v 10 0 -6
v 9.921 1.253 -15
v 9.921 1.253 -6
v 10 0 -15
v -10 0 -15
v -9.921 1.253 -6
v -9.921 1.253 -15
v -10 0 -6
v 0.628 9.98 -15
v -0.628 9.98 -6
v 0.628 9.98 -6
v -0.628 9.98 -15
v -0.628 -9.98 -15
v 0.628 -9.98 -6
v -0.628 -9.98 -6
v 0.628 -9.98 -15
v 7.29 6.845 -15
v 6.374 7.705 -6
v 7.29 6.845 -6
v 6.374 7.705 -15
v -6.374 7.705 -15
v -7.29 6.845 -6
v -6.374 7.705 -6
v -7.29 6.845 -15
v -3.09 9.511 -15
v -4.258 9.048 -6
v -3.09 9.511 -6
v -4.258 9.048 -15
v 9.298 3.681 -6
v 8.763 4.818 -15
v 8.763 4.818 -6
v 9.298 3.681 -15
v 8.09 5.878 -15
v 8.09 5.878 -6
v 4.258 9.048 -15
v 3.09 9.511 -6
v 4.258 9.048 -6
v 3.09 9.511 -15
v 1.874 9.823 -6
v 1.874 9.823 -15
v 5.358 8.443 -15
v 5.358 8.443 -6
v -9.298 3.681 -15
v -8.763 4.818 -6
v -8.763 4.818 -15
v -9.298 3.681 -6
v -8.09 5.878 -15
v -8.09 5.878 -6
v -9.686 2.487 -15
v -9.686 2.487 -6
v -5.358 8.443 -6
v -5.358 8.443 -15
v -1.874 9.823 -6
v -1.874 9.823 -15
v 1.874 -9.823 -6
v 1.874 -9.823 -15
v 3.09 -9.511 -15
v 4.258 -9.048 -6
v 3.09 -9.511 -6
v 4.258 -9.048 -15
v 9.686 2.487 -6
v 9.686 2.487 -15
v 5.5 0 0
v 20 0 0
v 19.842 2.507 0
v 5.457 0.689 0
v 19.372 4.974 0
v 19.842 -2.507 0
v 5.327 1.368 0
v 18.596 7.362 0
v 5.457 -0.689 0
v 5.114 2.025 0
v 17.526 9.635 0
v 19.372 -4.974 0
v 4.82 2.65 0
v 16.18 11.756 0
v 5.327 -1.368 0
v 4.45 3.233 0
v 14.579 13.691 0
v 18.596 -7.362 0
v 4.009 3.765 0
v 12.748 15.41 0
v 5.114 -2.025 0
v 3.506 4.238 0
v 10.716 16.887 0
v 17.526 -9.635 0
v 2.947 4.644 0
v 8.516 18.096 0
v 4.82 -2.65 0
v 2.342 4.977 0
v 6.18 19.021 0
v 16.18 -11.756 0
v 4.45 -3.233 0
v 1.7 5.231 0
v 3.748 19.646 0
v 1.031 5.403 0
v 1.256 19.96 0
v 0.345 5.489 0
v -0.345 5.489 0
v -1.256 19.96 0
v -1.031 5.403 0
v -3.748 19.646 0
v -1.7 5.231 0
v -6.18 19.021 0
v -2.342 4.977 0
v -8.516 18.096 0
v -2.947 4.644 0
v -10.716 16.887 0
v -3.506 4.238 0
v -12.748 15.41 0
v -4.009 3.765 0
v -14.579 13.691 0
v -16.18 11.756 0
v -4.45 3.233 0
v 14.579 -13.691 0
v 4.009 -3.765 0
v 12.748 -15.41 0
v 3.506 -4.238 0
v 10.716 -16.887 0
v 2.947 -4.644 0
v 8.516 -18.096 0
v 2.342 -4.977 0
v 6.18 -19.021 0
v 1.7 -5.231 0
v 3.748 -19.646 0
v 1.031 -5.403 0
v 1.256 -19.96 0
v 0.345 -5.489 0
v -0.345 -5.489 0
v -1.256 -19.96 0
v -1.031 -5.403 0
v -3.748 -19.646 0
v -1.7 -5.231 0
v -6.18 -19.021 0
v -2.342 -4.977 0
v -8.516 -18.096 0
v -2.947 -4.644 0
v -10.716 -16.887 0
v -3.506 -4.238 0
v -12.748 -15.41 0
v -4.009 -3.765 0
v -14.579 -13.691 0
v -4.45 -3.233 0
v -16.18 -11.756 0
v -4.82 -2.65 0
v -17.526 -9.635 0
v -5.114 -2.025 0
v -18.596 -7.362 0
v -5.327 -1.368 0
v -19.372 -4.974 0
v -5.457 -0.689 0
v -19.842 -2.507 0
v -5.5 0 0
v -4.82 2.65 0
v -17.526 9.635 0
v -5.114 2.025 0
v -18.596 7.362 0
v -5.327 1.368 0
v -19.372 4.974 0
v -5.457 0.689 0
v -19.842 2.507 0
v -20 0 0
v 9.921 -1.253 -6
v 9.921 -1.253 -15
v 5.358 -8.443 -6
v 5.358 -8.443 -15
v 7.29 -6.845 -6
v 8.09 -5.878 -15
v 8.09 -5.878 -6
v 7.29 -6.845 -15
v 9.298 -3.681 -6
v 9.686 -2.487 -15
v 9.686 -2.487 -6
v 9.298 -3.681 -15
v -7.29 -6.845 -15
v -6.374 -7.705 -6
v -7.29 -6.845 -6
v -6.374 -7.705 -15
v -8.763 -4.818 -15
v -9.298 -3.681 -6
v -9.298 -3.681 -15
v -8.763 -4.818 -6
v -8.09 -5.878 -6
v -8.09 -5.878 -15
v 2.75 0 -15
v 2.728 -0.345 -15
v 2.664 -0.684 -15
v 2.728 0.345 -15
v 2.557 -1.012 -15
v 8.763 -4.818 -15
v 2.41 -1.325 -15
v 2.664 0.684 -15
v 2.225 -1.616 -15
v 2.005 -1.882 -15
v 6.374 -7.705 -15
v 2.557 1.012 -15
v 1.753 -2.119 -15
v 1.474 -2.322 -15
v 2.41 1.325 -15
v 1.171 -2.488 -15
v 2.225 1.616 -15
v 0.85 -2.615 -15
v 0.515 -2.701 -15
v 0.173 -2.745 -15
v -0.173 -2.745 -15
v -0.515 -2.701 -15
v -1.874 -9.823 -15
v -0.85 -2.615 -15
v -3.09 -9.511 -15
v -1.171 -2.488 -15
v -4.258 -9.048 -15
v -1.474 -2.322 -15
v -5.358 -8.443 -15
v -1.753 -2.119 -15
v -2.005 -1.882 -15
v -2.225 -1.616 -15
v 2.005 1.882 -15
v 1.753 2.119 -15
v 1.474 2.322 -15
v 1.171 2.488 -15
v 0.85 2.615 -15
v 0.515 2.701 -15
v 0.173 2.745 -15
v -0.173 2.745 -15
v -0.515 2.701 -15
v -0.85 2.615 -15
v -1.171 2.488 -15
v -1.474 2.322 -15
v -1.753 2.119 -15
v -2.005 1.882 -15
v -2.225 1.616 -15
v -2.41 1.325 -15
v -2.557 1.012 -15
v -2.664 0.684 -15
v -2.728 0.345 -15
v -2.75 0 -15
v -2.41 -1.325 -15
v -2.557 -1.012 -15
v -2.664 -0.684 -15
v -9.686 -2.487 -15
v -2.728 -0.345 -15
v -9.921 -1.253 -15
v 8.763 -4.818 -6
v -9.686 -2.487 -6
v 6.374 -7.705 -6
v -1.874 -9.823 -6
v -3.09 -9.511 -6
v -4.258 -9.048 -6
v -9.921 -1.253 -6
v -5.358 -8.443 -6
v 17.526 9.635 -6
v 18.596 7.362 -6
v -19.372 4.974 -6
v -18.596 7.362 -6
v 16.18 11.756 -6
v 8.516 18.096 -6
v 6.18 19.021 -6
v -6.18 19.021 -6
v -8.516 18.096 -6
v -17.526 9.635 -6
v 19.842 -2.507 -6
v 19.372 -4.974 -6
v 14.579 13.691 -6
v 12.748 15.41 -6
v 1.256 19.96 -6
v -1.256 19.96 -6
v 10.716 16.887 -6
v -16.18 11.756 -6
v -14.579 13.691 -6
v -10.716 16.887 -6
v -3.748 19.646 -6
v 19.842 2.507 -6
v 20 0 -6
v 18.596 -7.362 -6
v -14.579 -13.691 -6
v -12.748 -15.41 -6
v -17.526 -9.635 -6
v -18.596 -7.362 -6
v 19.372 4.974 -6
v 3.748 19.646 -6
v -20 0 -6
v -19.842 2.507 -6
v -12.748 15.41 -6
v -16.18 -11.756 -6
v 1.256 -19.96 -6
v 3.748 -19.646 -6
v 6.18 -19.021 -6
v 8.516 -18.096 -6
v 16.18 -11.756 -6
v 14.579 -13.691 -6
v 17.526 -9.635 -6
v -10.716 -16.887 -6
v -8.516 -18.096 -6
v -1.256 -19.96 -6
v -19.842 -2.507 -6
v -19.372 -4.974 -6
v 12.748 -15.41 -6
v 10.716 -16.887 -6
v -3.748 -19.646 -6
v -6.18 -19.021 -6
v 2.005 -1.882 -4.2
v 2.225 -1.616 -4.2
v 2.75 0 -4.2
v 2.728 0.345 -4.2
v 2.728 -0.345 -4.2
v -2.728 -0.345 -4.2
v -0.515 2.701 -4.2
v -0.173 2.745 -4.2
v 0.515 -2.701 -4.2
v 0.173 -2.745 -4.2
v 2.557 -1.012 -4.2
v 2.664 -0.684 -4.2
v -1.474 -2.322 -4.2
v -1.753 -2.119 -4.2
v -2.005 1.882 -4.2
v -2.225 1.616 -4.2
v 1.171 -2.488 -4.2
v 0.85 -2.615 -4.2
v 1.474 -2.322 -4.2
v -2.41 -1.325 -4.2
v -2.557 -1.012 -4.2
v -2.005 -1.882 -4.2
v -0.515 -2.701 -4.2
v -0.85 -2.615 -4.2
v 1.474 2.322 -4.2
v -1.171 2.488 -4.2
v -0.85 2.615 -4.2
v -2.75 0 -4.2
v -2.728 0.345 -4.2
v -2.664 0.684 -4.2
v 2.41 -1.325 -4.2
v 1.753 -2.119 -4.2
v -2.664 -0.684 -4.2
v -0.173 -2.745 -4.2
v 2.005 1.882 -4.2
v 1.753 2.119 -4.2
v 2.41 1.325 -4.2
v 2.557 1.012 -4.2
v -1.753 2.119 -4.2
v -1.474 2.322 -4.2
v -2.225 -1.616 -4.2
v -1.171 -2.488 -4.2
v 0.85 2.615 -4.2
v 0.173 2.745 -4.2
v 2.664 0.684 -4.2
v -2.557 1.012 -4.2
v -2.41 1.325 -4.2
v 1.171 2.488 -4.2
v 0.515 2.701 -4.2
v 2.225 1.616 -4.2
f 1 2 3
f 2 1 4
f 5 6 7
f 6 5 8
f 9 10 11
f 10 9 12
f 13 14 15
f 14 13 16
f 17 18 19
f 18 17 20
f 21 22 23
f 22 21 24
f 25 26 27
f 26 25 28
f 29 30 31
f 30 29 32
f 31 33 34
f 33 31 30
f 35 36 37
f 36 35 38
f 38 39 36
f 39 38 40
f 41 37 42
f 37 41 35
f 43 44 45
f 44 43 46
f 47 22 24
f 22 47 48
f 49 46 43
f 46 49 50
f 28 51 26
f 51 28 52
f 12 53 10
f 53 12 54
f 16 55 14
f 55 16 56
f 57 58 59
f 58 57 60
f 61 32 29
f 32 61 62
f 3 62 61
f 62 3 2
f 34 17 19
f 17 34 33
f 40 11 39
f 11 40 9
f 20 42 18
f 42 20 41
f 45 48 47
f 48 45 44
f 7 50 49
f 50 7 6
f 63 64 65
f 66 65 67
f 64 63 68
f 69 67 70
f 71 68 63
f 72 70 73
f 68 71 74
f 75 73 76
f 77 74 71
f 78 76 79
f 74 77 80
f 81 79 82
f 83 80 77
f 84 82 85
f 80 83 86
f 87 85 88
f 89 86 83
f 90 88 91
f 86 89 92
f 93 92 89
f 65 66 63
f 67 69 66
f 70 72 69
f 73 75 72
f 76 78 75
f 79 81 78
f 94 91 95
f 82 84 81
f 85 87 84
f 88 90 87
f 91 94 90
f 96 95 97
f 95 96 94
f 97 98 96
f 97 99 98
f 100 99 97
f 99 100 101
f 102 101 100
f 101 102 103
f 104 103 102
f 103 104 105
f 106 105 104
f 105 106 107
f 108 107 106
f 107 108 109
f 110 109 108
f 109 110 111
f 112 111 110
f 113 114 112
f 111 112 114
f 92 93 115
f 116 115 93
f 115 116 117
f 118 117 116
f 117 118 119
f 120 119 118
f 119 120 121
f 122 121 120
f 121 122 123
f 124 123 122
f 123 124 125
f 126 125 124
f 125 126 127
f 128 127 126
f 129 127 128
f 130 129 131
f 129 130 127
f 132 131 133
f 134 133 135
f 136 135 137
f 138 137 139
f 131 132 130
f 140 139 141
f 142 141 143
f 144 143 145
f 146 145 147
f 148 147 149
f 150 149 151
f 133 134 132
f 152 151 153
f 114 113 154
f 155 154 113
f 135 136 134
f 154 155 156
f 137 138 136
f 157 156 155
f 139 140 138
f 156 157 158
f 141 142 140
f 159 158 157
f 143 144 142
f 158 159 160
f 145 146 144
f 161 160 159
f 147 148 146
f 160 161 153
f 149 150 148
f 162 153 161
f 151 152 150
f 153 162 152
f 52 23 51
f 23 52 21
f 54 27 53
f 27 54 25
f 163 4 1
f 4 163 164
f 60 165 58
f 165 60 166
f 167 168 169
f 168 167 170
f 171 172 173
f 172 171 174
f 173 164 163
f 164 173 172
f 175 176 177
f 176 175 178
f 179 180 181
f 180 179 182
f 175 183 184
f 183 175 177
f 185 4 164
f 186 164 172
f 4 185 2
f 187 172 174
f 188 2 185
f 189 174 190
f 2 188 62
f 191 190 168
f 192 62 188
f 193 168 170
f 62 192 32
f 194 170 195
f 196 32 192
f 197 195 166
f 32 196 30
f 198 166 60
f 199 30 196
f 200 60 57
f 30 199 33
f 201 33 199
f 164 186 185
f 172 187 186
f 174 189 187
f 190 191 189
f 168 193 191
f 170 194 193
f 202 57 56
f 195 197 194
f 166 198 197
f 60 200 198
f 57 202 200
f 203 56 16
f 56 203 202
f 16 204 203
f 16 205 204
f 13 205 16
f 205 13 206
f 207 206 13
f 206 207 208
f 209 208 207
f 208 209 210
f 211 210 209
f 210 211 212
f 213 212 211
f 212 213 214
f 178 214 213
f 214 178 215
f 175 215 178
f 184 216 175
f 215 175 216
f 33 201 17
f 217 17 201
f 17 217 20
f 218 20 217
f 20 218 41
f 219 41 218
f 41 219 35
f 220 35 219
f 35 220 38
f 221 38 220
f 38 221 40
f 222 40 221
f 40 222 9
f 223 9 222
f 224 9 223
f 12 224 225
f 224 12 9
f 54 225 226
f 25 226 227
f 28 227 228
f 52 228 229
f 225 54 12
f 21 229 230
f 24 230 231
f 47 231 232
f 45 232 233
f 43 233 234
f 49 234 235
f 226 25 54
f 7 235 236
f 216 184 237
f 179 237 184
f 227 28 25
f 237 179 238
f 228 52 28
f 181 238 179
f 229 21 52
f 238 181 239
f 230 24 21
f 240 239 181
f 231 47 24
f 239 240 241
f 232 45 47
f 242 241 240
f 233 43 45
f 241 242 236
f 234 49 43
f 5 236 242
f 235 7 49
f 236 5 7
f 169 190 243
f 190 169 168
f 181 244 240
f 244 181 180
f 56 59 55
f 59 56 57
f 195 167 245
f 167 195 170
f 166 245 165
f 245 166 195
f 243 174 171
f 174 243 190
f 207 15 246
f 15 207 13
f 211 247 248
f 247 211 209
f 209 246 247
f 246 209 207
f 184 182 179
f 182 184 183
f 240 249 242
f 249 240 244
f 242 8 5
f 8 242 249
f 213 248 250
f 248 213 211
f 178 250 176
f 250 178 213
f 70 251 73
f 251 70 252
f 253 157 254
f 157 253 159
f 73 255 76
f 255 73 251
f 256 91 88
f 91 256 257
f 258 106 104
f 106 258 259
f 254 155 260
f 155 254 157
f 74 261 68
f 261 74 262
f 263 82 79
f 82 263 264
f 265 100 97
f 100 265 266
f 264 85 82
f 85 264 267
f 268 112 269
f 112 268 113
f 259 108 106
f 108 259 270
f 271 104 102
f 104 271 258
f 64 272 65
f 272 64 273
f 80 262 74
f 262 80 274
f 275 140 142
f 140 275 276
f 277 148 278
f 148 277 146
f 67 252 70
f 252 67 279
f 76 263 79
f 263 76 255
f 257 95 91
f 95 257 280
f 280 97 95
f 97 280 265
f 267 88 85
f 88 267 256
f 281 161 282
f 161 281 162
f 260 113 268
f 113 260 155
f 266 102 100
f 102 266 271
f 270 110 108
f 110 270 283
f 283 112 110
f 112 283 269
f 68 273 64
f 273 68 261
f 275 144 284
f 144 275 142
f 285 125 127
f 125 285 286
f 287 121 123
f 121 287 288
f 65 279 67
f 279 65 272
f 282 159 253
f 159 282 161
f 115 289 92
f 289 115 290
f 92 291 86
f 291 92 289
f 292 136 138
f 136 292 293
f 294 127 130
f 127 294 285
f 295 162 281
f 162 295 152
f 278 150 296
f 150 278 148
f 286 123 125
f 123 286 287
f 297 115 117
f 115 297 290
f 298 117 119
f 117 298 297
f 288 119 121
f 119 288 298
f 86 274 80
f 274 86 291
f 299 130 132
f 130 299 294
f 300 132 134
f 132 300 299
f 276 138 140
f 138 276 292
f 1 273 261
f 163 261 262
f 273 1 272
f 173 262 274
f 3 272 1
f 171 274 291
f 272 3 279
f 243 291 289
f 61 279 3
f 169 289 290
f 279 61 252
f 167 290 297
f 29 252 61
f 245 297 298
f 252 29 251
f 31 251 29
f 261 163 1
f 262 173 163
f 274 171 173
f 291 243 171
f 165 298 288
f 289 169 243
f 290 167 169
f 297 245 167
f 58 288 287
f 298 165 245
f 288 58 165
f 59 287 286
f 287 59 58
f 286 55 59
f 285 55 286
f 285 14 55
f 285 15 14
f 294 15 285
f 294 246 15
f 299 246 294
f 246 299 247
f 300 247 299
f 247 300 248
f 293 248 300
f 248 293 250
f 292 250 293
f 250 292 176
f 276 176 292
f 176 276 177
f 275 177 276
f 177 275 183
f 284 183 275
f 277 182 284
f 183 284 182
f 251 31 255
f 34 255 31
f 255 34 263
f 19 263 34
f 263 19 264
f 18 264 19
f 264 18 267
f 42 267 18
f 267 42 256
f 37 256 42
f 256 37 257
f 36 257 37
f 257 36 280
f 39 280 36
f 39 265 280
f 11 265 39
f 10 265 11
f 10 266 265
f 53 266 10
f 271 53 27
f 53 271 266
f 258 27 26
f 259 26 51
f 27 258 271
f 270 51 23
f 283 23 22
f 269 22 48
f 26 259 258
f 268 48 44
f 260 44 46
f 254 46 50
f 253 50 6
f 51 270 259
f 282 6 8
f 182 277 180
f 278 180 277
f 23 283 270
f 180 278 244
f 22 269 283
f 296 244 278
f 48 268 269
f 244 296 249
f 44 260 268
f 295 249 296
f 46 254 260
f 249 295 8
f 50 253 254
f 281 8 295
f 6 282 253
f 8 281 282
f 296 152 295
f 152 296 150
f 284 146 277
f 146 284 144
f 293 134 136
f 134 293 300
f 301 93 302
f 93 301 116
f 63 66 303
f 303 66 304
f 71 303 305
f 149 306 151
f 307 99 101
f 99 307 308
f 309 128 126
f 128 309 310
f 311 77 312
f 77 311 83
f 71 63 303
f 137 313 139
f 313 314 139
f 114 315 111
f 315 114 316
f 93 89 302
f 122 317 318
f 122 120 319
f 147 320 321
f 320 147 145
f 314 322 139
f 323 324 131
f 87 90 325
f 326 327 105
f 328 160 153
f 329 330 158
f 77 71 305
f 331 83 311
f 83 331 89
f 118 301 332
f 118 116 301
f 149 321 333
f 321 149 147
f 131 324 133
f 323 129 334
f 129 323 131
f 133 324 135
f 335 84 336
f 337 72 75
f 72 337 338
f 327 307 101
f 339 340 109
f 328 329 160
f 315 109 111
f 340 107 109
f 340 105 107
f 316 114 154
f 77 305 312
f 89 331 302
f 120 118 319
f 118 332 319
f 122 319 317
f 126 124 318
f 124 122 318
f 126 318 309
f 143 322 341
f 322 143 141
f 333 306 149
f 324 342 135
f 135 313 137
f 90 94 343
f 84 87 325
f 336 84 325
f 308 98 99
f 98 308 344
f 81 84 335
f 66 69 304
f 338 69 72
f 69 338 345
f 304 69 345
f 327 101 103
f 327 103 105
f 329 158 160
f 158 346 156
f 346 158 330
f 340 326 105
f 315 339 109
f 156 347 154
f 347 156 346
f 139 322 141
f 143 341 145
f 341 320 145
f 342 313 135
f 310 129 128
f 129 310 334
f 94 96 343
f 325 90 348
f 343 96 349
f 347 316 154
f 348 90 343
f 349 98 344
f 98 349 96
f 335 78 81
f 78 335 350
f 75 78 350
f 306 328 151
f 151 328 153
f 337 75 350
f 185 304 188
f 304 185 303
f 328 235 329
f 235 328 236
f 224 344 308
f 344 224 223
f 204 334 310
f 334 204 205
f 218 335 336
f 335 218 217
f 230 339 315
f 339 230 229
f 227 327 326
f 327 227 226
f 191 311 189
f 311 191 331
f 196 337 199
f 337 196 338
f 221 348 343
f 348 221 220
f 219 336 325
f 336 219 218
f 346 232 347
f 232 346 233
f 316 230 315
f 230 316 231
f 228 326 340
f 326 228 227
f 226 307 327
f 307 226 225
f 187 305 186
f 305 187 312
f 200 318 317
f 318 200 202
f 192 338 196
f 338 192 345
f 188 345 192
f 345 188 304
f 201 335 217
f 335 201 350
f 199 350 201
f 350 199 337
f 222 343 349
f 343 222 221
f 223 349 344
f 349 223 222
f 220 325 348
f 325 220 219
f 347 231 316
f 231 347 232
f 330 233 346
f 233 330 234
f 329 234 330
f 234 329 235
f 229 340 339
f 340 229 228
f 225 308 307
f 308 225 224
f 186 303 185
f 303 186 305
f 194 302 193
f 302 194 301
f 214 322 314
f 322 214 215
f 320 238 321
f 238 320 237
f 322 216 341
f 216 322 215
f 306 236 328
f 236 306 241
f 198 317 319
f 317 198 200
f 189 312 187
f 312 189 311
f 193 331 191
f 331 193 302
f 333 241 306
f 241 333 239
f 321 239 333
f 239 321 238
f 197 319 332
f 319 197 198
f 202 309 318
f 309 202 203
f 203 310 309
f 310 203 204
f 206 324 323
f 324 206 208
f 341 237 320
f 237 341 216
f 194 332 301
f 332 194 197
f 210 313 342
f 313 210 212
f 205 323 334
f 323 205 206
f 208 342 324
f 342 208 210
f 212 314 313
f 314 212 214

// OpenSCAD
$fn = 50;


difference() {
	union() {
		translate(v = [0, 0, -15.0000000000]) {
			cylinder(h = 15, r = 10.0000000000);
		}
		translate(v = [0, 0, -6.0000000000]) {
			cylinder(h = 6, r = 20.0000000000);
		}
	}
	union() {
		translate(v = [0, 0, 0]) {
			rotate(a = [0, 0, 0]) {
				difference() {
					union() {
						#translate(v = [0, 0, -15.0000000000]) {
							cylinder(h = 15, r = 2.2500000000);
						}
						#translate(v = [0, 0, -4.2000000000]) {
							cylinder(h = 4.2000000000, r = 10.0000000000, r1 = 2.7500000000, r2 = 5.5000000000);
						}
						#translate(v = [0, 0, -15.0000000000]) {
							cylinder(h = 15, r = 2.7500000000);
						}
						#translate(v = [0, 0, -15.0000000000]) {
							cylinder(h = 15, r = 2.2500000000);
						}
					}
					union();
				}
			}
		}
	}
}
